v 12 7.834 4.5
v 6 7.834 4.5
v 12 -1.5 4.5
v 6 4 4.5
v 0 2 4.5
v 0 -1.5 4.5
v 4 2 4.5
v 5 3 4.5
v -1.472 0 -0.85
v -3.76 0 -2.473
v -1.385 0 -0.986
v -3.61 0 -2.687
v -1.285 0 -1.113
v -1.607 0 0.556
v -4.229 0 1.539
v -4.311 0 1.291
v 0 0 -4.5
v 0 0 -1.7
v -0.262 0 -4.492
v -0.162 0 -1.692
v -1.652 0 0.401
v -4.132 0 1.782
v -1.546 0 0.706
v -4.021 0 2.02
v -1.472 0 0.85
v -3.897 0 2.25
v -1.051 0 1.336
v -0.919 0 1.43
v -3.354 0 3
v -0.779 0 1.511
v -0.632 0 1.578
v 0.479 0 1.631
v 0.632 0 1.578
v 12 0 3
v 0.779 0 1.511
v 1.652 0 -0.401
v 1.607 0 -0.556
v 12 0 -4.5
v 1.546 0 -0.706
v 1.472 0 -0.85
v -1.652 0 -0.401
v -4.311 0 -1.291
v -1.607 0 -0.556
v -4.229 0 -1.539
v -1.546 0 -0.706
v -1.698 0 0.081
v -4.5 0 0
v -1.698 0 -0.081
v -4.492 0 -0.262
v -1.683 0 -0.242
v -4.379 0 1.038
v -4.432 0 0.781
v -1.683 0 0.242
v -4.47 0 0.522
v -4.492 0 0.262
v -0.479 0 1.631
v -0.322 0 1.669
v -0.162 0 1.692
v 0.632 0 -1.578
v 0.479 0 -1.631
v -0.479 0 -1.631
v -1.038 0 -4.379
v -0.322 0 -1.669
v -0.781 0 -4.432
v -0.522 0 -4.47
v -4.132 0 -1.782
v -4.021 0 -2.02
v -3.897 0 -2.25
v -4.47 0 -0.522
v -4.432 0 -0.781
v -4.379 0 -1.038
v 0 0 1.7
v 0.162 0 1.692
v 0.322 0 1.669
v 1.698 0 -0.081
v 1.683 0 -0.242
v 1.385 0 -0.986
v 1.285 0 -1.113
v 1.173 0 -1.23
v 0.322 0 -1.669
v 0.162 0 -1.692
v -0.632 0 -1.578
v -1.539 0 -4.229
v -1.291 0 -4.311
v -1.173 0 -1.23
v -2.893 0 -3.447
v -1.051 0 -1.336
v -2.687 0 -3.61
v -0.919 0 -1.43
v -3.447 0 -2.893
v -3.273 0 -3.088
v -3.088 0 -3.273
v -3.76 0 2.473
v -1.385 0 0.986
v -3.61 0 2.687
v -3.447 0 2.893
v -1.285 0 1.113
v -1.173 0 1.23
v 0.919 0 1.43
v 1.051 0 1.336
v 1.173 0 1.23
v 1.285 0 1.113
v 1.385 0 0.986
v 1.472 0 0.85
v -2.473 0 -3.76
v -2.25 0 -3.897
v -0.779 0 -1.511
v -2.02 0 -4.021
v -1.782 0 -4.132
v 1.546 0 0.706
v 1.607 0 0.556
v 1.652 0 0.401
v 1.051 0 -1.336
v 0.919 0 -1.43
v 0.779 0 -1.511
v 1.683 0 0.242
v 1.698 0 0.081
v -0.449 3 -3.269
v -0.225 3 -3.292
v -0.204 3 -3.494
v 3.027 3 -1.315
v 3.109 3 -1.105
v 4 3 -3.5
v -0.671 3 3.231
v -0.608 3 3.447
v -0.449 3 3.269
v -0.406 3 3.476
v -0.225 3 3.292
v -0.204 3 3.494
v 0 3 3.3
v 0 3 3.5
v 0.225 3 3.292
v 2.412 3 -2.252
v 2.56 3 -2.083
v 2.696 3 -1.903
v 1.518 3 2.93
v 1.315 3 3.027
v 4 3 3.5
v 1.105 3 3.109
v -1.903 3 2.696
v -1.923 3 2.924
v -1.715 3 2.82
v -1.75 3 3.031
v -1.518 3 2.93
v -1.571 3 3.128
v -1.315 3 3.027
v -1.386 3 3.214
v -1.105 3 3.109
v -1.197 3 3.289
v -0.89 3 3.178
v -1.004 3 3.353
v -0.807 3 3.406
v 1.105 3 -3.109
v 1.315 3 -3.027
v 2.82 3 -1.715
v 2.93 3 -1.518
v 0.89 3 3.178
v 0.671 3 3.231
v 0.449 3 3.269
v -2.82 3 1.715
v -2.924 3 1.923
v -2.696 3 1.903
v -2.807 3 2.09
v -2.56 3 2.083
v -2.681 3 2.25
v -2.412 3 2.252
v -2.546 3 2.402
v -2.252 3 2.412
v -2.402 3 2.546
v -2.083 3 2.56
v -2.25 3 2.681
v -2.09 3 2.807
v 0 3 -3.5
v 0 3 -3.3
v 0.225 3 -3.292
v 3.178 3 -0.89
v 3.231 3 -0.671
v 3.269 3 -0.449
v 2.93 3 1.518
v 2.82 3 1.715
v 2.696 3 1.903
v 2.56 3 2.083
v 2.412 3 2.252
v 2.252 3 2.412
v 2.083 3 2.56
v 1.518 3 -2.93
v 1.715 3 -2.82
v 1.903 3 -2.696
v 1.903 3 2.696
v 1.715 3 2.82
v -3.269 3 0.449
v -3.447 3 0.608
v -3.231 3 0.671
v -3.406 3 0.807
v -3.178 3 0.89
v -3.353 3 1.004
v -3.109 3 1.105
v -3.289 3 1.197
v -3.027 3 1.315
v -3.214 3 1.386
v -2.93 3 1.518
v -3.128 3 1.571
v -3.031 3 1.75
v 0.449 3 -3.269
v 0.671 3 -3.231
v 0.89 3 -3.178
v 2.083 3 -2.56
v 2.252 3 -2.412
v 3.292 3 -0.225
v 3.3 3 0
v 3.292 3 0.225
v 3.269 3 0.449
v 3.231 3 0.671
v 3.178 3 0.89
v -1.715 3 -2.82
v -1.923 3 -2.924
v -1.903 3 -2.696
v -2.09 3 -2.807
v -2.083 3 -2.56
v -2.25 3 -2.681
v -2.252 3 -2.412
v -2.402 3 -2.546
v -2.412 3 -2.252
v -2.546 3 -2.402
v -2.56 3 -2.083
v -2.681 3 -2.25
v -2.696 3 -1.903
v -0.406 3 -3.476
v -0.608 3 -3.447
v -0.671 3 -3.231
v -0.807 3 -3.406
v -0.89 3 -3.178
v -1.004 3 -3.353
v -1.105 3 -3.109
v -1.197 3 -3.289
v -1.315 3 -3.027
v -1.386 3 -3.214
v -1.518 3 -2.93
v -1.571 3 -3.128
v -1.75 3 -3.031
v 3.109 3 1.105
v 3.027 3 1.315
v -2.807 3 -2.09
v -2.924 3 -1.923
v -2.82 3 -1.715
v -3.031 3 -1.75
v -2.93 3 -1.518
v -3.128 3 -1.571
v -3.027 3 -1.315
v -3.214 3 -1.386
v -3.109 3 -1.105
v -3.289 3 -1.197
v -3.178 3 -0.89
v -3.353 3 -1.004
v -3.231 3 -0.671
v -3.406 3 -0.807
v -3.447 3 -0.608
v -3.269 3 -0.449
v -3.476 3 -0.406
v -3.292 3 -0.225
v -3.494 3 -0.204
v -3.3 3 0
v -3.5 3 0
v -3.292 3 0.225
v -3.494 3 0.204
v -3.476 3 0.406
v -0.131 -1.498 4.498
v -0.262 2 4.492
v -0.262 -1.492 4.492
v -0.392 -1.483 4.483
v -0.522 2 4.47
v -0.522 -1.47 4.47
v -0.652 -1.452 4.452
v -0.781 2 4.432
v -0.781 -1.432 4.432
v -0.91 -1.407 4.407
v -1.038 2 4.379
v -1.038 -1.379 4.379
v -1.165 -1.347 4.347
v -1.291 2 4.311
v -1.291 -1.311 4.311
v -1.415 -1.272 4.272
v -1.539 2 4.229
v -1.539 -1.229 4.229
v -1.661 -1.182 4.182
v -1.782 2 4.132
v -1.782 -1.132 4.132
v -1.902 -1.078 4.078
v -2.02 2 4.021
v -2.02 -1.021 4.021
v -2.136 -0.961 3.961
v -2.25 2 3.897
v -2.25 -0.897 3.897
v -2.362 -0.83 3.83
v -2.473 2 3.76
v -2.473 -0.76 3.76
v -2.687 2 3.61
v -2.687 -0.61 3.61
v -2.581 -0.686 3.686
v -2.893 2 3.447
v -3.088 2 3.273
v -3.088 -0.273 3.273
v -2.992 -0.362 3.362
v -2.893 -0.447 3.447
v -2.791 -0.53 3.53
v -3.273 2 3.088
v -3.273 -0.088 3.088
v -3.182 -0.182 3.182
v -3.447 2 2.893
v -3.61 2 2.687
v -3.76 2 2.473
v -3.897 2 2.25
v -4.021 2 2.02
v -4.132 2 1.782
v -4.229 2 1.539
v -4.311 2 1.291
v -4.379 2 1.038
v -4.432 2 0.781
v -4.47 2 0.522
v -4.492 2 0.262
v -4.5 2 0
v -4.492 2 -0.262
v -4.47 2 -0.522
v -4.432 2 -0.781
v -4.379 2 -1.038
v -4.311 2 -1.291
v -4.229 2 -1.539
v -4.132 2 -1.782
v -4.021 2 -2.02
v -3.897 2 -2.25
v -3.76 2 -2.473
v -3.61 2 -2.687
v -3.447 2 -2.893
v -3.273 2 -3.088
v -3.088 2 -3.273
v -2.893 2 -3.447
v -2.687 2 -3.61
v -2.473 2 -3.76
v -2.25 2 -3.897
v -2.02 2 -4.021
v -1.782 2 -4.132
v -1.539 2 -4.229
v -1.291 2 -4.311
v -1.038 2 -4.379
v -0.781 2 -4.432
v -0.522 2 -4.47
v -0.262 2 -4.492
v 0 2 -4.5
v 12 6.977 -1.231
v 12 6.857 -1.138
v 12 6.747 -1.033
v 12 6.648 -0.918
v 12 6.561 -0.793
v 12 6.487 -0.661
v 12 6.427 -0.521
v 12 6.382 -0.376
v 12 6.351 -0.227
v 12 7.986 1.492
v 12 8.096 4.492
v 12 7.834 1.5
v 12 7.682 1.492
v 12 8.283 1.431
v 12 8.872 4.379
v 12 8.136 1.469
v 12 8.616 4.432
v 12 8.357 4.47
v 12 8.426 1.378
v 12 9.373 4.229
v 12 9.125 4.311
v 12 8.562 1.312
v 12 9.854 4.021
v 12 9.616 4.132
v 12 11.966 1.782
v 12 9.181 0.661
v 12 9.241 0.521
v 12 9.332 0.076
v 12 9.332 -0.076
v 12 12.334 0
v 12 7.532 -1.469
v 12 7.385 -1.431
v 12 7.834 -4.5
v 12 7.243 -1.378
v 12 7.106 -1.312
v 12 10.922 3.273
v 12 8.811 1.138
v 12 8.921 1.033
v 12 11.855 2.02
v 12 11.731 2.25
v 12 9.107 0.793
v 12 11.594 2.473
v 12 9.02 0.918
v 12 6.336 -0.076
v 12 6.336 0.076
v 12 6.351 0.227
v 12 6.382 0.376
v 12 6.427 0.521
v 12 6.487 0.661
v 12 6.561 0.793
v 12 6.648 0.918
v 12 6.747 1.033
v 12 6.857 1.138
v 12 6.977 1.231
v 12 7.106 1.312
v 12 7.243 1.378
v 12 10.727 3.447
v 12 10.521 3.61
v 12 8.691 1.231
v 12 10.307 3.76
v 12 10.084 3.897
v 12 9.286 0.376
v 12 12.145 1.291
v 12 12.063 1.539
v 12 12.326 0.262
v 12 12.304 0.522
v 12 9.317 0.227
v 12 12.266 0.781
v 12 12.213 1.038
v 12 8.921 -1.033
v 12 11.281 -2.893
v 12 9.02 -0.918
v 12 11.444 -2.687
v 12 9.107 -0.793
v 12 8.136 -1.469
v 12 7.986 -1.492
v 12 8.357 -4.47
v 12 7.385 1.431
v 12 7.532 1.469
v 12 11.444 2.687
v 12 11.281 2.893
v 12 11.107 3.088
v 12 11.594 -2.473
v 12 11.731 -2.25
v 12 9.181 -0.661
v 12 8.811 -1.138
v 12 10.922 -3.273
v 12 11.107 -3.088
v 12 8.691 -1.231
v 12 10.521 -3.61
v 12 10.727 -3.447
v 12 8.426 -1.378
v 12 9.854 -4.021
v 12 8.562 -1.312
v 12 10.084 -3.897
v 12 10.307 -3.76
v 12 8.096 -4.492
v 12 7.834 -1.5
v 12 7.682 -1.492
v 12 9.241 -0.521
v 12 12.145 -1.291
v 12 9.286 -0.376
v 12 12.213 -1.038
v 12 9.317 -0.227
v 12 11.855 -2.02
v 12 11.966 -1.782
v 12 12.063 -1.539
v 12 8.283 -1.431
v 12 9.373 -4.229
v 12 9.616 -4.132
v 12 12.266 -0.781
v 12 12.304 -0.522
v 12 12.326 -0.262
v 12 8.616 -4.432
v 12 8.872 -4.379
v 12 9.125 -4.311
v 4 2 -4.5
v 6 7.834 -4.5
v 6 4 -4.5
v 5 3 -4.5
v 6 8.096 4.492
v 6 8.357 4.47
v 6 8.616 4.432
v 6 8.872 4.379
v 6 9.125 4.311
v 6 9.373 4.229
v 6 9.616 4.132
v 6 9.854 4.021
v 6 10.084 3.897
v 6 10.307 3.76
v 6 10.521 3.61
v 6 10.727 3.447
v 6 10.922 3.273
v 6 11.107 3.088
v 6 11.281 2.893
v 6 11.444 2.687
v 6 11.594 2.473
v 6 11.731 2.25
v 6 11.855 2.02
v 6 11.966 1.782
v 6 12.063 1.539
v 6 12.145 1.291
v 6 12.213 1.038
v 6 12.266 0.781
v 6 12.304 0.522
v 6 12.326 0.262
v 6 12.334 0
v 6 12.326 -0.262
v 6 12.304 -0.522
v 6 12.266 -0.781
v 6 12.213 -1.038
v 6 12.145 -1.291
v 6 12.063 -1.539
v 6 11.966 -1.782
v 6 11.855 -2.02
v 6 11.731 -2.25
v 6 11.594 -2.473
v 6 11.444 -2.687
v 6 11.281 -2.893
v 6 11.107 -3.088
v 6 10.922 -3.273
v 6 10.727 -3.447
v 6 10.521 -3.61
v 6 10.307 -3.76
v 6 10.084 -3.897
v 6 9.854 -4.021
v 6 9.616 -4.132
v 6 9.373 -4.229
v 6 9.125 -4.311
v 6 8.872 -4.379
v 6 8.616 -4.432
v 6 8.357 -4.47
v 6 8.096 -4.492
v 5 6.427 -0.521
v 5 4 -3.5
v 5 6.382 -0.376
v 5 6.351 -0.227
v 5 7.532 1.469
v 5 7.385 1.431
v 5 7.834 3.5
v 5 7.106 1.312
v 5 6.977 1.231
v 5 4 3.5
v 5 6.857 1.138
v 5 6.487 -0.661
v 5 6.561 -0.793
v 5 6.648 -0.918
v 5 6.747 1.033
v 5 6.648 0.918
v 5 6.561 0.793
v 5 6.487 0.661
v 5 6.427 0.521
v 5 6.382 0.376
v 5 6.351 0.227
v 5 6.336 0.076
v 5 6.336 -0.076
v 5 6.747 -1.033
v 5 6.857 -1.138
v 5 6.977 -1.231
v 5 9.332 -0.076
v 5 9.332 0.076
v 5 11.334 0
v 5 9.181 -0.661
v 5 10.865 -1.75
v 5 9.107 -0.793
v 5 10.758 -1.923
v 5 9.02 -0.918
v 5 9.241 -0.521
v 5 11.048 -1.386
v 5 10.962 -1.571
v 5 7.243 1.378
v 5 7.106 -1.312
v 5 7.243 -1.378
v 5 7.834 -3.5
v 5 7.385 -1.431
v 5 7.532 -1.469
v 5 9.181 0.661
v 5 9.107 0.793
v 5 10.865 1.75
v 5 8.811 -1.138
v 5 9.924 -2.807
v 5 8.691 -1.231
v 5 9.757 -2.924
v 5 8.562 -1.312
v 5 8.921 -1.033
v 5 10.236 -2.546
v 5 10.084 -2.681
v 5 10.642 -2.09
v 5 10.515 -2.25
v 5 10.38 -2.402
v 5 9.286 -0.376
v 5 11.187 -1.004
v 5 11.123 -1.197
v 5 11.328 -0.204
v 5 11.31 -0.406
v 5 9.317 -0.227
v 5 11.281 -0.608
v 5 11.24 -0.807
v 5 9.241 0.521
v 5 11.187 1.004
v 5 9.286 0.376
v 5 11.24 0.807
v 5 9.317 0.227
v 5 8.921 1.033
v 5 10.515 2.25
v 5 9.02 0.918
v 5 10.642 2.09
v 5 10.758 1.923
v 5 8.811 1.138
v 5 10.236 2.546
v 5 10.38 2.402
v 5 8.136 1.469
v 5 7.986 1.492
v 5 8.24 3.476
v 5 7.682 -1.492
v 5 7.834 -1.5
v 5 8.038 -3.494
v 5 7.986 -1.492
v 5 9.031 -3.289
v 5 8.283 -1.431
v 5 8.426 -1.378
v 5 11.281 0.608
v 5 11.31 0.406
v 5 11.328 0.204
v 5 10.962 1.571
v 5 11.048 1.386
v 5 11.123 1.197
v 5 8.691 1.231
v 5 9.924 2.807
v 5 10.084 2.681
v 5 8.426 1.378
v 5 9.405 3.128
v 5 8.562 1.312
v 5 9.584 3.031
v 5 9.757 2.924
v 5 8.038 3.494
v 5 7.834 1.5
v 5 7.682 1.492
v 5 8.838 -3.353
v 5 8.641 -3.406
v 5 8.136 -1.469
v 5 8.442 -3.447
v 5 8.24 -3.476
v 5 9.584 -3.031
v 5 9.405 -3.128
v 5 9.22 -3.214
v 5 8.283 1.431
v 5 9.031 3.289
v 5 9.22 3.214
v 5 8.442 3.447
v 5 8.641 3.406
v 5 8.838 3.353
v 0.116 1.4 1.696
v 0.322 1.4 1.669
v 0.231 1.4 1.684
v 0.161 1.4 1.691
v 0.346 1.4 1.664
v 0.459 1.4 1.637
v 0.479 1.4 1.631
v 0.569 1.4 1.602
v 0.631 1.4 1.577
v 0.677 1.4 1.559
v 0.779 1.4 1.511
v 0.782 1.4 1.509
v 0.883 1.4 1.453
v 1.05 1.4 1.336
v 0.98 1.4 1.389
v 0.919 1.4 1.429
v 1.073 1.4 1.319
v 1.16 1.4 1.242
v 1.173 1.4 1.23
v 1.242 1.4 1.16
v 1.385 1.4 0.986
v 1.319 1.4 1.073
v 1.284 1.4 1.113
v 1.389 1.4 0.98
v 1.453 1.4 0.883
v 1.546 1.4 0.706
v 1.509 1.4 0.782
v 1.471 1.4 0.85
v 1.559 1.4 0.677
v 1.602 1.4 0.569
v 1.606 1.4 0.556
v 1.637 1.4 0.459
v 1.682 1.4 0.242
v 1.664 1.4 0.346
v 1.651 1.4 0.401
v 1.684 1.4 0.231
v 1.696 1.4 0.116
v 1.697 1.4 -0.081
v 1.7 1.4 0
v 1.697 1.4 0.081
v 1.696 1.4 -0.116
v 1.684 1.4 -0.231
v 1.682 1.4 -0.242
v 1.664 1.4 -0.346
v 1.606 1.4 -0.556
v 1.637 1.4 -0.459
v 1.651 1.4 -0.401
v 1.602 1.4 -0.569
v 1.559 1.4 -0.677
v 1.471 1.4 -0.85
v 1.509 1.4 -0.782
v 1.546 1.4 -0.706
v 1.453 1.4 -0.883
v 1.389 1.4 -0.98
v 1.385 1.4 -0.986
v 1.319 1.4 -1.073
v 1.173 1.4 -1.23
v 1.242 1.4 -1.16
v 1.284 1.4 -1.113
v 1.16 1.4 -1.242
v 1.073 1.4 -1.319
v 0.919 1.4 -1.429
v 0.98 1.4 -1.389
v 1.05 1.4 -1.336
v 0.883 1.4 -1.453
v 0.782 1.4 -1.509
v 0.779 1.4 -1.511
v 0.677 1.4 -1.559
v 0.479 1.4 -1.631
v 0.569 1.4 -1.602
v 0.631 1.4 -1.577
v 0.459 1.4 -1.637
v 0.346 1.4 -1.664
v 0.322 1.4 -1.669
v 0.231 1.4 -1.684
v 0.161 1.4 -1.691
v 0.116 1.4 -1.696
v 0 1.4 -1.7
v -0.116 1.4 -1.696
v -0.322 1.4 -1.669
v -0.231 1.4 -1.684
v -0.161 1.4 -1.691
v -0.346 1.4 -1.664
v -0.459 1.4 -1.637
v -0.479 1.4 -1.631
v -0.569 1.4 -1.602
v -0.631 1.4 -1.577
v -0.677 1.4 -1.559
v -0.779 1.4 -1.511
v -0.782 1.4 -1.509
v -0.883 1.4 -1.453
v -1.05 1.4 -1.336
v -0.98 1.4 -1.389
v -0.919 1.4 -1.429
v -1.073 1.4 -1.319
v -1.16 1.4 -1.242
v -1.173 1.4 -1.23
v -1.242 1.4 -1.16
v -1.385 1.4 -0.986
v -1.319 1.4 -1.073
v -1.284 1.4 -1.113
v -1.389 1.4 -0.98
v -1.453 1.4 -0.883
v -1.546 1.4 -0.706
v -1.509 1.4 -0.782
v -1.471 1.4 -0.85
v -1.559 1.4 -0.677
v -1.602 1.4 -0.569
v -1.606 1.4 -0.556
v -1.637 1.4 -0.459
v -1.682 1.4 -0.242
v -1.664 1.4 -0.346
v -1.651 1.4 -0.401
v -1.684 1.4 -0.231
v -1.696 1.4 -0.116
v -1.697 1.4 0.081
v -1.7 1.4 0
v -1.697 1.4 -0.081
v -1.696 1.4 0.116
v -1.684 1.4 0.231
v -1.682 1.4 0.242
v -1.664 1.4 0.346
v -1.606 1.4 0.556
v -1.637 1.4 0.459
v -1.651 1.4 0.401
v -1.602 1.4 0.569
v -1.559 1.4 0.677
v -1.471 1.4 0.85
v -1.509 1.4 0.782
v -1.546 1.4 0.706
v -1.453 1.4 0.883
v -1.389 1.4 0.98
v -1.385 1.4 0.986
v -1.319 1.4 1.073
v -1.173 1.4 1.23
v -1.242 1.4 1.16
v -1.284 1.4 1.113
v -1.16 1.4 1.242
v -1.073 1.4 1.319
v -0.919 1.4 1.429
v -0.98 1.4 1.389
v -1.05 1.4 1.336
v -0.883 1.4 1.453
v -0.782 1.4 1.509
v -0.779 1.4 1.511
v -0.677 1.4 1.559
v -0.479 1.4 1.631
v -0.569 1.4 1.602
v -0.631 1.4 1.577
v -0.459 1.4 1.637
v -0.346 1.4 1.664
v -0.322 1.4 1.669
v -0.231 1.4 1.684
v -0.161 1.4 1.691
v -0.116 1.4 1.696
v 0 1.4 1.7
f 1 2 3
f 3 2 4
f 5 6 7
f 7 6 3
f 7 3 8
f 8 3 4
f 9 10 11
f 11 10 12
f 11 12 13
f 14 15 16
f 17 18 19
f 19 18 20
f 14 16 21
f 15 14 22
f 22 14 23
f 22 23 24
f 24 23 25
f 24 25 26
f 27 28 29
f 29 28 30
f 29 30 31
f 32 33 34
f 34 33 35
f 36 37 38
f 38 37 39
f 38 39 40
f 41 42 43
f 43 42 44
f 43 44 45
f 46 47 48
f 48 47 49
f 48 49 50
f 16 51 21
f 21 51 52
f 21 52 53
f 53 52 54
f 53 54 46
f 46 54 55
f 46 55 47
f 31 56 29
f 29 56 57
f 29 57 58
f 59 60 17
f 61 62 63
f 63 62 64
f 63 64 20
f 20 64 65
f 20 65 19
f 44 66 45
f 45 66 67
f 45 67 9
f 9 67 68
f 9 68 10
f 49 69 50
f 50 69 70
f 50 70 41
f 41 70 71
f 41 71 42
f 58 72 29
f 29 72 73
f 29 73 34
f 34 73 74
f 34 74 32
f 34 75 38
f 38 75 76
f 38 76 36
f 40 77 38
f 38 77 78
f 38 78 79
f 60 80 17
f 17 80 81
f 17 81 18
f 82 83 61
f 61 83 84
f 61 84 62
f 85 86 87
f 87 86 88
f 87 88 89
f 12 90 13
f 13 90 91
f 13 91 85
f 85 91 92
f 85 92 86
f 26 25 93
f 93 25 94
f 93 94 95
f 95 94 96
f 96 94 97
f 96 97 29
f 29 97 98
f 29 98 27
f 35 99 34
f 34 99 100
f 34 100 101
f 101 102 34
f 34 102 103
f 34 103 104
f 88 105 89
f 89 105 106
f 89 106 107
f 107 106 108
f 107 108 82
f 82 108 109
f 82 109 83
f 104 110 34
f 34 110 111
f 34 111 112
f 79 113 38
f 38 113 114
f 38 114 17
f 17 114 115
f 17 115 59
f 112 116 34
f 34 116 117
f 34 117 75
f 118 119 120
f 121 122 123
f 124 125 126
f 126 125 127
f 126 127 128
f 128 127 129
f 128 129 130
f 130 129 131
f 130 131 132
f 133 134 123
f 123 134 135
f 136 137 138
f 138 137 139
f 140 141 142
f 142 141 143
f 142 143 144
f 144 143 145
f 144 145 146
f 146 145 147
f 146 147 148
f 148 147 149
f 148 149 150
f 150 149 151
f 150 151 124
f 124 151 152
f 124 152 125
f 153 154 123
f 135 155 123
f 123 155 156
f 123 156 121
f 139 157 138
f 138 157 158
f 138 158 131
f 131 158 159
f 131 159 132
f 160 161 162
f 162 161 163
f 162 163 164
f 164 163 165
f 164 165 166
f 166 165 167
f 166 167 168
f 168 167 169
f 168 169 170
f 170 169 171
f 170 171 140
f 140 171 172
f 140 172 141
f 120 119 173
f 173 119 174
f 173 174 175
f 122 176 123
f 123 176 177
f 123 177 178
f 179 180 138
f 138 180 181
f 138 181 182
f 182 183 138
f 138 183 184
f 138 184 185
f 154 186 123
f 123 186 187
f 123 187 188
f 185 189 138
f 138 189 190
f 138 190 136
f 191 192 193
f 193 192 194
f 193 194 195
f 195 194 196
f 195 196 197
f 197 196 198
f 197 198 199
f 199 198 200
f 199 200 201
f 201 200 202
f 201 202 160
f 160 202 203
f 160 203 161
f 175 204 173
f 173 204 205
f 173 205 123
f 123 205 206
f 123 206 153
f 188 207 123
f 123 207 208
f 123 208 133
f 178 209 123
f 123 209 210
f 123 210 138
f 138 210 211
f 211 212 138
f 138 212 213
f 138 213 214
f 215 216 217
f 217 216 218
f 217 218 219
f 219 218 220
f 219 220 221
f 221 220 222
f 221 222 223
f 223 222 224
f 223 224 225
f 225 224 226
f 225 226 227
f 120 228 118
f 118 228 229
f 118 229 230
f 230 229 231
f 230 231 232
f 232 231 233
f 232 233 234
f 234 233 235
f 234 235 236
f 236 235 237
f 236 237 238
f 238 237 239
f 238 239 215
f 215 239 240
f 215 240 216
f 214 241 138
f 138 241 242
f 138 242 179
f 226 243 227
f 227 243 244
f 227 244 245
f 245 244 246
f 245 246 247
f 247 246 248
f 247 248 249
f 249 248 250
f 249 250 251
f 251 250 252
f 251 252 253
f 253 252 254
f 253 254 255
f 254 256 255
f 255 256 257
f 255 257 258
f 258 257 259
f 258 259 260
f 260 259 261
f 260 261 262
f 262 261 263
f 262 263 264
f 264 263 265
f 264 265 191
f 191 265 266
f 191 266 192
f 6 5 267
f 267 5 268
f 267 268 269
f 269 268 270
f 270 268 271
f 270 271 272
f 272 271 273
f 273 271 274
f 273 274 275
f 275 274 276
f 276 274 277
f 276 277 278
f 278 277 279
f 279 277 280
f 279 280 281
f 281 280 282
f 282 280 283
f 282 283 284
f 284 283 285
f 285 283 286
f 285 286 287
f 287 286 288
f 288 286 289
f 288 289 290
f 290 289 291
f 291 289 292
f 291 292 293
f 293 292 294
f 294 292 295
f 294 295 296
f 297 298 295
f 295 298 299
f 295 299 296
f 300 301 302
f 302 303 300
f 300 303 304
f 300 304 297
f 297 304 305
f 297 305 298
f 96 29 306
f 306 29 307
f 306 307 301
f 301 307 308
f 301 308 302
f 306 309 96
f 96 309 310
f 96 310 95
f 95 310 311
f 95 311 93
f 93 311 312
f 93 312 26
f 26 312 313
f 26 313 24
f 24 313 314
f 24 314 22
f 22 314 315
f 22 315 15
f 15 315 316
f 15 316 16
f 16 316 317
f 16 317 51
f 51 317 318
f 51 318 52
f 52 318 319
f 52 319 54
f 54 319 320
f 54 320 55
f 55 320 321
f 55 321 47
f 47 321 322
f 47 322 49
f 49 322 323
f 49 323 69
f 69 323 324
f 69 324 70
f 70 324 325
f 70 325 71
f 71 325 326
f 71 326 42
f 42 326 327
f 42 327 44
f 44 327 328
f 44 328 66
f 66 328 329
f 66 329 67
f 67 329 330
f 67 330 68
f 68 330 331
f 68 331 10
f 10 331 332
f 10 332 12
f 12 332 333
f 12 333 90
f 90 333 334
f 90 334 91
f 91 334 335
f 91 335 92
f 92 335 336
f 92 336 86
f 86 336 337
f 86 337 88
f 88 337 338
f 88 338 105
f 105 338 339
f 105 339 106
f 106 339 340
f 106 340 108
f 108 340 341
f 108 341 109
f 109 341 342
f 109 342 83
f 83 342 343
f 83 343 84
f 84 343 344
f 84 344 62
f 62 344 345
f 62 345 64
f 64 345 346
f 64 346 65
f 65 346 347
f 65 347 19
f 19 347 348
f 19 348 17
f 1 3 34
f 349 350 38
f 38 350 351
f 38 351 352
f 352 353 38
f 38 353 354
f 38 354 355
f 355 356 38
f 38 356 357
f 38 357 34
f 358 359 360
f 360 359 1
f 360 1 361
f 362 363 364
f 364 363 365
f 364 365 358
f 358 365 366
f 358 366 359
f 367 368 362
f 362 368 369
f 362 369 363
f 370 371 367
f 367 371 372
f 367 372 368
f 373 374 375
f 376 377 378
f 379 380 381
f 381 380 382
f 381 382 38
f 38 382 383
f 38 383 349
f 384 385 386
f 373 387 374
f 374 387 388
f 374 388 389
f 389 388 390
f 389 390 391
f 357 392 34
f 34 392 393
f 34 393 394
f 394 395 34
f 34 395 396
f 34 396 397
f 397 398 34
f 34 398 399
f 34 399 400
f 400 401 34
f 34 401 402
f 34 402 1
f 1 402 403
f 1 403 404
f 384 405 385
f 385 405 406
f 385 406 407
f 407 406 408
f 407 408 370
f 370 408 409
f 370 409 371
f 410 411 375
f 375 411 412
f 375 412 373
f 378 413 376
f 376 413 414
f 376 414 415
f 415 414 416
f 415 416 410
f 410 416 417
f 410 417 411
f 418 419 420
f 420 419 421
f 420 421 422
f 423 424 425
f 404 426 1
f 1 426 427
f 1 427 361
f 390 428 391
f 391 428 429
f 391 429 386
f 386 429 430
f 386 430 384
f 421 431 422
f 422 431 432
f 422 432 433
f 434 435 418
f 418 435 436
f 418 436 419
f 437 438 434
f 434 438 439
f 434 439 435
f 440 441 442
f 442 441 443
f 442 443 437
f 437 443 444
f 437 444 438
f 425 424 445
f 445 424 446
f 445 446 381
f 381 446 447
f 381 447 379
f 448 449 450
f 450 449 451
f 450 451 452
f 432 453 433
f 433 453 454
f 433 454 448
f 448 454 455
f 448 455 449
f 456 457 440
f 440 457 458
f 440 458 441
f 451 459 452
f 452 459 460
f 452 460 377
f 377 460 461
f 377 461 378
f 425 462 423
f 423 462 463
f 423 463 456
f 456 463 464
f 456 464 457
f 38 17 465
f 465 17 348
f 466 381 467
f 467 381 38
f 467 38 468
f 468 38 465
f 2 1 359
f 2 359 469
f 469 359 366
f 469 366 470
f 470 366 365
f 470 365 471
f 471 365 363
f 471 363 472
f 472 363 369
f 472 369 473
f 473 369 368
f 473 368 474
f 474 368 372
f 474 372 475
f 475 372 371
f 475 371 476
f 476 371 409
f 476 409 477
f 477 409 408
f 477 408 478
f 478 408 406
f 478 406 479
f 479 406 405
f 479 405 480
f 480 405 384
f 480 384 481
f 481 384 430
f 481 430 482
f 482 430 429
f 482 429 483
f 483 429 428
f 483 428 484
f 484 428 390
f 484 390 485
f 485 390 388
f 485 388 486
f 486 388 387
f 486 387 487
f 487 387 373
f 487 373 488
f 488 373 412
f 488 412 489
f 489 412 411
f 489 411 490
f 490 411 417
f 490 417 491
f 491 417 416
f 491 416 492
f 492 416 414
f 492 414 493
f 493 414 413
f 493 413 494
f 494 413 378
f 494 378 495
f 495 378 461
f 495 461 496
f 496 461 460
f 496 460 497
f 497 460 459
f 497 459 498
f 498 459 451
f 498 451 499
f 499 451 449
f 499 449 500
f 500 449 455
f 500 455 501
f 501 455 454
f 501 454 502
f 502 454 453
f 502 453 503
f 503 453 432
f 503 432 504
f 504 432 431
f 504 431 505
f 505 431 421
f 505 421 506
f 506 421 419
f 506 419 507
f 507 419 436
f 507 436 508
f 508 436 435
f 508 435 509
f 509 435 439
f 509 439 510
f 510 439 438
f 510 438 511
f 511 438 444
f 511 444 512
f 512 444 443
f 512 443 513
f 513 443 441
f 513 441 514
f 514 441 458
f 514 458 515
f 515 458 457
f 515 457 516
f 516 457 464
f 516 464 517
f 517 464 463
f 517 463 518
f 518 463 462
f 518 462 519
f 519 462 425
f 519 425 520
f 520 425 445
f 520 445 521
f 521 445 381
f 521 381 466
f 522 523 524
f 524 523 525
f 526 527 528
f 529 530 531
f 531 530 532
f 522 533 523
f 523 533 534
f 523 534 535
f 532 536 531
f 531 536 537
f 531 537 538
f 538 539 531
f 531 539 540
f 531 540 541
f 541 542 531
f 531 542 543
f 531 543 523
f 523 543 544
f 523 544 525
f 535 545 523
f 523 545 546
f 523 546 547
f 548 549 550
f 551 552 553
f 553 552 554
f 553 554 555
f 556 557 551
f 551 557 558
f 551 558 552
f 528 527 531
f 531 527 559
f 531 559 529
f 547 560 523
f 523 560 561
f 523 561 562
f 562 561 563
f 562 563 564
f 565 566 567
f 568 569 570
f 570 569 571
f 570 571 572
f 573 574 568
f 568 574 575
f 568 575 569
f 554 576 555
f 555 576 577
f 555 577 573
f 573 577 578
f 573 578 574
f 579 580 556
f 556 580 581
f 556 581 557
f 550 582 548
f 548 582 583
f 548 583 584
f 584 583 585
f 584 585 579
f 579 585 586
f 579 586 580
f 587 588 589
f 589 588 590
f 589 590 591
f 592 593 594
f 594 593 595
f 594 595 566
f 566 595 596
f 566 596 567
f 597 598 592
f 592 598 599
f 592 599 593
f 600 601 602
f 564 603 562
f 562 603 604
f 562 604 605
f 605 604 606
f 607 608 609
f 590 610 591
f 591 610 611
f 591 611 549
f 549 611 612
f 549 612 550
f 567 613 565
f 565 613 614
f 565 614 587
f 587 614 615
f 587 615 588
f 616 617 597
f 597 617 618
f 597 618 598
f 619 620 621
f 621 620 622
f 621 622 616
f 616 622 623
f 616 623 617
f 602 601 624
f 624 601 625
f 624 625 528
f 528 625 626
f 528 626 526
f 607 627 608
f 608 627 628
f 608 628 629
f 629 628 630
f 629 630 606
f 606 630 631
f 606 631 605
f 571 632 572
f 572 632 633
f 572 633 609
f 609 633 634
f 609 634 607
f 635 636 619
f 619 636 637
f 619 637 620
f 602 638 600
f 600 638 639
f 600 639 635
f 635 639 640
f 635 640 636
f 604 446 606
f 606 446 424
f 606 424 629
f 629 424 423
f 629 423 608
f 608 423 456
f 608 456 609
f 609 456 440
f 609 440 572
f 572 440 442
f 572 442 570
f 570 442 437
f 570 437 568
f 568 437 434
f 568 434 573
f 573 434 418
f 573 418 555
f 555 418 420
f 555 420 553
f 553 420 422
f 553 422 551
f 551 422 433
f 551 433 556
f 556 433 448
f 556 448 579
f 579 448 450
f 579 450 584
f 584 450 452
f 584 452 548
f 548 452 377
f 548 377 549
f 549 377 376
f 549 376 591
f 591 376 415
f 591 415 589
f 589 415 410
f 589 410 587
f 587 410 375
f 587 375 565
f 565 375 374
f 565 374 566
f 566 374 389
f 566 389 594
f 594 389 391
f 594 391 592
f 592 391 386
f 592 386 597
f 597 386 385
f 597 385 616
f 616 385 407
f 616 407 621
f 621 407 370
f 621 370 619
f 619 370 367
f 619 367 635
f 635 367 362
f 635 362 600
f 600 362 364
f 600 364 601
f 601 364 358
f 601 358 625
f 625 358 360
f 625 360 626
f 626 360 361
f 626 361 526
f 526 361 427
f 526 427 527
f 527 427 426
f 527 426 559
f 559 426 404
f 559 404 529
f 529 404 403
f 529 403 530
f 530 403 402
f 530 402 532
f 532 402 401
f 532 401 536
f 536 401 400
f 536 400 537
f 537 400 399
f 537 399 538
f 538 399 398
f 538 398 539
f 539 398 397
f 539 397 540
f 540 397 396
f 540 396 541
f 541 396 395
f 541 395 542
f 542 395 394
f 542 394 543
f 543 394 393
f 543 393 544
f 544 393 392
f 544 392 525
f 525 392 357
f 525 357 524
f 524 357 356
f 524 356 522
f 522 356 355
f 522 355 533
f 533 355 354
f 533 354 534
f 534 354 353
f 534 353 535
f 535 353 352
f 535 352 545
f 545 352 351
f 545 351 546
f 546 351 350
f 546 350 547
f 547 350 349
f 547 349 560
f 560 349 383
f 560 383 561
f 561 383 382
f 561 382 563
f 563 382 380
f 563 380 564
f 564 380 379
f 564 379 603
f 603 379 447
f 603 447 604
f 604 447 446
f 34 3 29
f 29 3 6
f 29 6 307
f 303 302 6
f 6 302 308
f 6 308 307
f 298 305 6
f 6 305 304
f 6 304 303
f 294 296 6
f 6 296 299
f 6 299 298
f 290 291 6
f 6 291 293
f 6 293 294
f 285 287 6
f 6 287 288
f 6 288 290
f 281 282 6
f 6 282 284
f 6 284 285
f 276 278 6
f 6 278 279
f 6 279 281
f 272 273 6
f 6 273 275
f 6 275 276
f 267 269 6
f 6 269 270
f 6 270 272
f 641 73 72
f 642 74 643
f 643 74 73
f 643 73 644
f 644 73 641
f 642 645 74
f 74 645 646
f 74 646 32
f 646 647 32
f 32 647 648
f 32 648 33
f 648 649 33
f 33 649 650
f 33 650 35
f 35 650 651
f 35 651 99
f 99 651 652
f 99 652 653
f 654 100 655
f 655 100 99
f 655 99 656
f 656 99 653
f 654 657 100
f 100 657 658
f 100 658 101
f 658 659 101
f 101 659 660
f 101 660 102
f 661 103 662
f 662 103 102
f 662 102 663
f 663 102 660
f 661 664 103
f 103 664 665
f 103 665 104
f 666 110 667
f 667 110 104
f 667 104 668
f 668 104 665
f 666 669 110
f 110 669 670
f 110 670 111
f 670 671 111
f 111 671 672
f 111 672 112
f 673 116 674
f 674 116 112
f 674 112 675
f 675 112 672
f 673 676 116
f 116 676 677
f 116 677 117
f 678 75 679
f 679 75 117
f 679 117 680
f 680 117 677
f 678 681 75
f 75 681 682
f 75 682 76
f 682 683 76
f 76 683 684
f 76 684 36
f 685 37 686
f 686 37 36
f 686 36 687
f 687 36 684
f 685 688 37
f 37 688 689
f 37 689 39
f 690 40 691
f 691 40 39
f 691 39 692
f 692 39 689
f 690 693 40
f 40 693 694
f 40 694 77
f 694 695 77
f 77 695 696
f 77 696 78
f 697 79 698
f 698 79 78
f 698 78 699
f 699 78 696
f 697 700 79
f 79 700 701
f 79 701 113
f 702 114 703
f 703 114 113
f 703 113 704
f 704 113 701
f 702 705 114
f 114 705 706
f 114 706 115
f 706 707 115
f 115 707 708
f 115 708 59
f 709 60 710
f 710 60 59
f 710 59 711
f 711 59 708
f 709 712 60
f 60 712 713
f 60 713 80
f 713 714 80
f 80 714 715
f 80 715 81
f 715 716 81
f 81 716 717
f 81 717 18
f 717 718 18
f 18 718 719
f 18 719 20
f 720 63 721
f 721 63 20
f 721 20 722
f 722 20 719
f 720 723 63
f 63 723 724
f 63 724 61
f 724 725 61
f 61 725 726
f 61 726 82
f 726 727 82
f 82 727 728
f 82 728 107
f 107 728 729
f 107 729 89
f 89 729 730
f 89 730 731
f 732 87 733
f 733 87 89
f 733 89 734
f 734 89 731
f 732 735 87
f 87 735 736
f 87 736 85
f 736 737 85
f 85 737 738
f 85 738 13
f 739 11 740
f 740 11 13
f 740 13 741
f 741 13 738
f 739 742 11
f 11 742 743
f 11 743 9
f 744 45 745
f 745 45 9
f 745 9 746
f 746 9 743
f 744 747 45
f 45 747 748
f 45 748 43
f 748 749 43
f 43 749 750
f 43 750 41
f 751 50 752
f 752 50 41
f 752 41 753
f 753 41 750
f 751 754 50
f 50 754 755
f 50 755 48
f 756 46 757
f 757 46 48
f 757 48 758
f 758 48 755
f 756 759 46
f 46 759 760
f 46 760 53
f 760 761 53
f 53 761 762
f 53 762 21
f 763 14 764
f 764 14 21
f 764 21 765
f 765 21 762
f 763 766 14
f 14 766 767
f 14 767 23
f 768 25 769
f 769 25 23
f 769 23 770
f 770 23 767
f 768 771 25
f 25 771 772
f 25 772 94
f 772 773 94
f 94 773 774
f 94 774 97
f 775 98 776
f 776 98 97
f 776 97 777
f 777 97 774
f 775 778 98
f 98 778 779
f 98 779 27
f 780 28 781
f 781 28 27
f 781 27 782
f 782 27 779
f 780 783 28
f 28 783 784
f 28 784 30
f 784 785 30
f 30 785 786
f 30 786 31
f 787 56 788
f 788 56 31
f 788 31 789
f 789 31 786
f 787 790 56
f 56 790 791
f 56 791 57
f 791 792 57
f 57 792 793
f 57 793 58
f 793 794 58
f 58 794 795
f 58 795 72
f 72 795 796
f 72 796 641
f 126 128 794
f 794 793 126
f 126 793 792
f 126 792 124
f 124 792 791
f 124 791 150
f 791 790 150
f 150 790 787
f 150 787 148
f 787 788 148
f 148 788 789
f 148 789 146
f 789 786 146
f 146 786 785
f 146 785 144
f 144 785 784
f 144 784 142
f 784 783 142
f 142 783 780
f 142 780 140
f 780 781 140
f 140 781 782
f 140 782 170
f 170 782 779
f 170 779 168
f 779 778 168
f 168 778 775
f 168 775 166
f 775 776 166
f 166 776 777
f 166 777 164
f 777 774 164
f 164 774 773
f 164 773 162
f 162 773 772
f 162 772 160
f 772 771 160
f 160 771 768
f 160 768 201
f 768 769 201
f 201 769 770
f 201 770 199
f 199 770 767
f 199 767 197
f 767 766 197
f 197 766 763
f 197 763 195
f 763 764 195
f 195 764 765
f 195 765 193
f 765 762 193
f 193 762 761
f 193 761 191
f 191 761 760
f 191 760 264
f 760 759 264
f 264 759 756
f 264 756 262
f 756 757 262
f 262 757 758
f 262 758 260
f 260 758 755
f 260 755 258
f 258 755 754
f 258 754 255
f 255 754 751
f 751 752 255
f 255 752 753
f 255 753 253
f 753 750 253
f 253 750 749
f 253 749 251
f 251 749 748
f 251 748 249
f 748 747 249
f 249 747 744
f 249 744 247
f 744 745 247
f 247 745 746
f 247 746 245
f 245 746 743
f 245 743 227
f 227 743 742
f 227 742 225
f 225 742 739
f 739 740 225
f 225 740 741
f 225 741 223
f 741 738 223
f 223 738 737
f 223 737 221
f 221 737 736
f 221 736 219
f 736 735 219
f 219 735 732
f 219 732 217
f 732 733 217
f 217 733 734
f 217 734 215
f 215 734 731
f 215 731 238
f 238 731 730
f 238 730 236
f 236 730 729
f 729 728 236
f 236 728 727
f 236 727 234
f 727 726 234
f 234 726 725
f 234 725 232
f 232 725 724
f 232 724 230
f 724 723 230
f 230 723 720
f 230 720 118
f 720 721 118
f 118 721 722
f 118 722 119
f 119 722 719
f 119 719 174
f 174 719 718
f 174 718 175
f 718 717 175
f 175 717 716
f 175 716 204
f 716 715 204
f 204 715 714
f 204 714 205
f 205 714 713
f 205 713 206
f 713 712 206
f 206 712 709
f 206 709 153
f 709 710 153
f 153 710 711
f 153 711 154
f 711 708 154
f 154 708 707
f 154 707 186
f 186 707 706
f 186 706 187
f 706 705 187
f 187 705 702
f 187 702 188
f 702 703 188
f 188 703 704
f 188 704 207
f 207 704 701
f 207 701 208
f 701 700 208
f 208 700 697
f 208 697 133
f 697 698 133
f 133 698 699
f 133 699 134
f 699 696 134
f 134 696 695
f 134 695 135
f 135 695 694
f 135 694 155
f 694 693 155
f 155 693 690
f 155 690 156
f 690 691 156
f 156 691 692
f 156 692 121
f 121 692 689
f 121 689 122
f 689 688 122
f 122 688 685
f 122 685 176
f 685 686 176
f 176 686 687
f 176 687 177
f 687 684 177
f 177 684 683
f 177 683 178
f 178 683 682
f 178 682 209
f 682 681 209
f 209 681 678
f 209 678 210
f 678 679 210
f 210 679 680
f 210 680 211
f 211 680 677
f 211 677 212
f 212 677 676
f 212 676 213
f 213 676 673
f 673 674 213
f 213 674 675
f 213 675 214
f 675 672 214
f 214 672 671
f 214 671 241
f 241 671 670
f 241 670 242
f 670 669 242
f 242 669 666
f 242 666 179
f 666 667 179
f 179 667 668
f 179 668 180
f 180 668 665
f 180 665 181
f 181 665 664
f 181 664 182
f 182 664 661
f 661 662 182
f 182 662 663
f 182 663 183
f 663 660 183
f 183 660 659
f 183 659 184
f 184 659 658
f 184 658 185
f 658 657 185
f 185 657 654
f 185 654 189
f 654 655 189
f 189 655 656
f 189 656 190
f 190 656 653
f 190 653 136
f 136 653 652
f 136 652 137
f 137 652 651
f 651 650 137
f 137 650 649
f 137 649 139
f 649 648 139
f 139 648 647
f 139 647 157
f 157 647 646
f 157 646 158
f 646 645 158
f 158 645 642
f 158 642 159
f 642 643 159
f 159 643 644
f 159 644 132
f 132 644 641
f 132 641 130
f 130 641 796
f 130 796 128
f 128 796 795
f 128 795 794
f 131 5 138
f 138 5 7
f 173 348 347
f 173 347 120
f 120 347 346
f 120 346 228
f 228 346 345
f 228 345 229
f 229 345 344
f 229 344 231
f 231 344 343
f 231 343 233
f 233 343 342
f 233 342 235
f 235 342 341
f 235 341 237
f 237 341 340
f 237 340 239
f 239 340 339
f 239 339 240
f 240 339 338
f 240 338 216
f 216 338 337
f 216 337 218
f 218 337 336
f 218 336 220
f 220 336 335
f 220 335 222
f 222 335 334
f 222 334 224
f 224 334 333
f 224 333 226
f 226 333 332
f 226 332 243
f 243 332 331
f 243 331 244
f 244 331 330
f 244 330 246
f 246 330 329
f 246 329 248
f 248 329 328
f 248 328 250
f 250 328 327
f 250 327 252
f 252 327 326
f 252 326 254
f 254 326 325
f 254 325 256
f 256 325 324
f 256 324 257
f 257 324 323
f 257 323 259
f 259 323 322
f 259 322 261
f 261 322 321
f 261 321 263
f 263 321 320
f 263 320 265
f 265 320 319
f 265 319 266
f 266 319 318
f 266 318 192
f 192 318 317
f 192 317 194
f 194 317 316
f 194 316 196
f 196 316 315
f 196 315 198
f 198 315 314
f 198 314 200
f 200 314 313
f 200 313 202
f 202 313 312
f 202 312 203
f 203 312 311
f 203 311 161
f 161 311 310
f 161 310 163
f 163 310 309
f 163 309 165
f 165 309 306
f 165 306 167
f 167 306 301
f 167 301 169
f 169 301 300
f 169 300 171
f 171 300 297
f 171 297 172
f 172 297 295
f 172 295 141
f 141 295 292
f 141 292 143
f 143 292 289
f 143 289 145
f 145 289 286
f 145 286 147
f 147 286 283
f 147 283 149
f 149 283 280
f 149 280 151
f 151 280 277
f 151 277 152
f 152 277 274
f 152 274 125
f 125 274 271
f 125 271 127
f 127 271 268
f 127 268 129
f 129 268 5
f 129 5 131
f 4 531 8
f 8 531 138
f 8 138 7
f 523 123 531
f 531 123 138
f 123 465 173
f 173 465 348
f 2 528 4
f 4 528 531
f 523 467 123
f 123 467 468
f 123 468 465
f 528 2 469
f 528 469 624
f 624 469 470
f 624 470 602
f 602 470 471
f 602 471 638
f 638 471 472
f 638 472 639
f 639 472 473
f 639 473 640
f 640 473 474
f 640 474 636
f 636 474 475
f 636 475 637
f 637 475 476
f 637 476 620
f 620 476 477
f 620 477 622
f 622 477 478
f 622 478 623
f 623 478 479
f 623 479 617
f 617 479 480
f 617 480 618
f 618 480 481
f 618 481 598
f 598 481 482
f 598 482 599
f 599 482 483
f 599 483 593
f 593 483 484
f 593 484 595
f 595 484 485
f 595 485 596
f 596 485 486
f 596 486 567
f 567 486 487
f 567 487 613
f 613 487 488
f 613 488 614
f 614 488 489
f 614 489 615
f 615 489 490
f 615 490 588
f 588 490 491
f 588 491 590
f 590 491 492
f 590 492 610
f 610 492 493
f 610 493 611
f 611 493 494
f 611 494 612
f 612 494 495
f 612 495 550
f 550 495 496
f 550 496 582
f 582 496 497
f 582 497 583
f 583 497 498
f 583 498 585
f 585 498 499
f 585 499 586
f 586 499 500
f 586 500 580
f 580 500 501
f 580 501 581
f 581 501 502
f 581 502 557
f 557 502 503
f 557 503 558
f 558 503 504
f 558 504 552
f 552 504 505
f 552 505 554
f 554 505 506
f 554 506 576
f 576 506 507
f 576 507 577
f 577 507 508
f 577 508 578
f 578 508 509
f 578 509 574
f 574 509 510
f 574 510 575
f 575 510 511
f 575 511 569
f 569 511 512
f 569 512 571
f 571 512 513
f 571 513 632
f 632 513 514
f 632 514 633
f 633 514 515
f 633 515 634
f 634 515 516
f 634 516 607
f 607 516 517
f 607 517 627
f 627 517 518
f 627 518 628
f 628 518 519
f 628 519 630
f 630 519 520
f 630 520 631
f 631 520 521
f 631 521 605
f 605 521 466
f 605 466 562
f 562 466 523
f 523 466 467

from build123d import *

# Parameters (mm, degrees)
SKETCH_1_R                = 1.5
EXTRUDE_1_DEPTH           = 3
SKETCH_3_R                = 1.5
EXTRUDE_2_DEPTH           = 7
EXTRUDE_START             = -15.354101966
EXTRUDE_3_DEPTH           = 15.354101966
EXTRUDE_START_2           = -2
EXTRUDE_3_2_DEPTH         = 2
HOLE_WIZARD_1_D           = 3.4
HOLE_WIZARD_1_CSINK_D     = 6.6
HOLE_WIZARD_1_CSINK_ANGLE = 90
CHAMFER_1_SIZE            = 1


with BuildPart() as part:
    # 草图1 → 凸台-拉伸1 (new body)
    with BuildSketch(Plane(origin=(0, 0, 0), x_dir=(1, 0, 0), z_dir=(0, 1, 0))):
        with BuildLine():
            Line((0, 4.5), (12, 4.5))
            Line((12, 4.5), (12, -4.5))
            Line((12, -4.5), (0, -4.5))
            ThreePointArc((0, -4.5), (-4.5, 0), (0, 4.5))
        make_face()
        with Locations(Location((0, 0, 0), (0, 0, 270))):
            Circle(SKETCH_1_R, mode=Mode.SUBTRACT)
    extrude(amount=EXTRUDE_1_DEPTH)

    # 草图3 → 凸台-拉伸2 (add)
    with BuildSketch(Plane(origin=(12, 0, 0), x_dir=(0, 0, -1), z_dir=(1, 0, 0))):
        with BuildLine():
            Line((-4.5, 7.834100358), (-4.5, 0))
            Line((-4.5, 0), (4.5, 0))
            Line((4.5, 0), (4.5, 7.834100358))
            ThreePointArc((4.5, 7.834100358), (0, 12.334100358), (-4.5, 7.834100358))
        make_face()
        with Locations((0, 7.834100358)):
            Circle(SKETCH_3_R, mode=Mode.SUBTRACT)
    extrude(amount=-EXTRUDE_2_DEPTH)

    # 凸台-拉伸3: read off the stored shape, not the designer's step
    # 凸台-拉伸3 outline → 凸台-拉伸3 (add)
    with BuildSketch(Plane(origin=(12, 0, 0), x_dir=(0, 0, -1), z_dir=(1, 0, 0)).offset(EXTRUDE_START)):
        Polygon((-4.5, 0), (-4.5, -1.5), (-3, 0), align=None)
    extrude(amount=EXTRUDE_3_DEPTH)

    # Extrude 3 2 outline → Extrude 3 2 (cut)
    with BuildSketch(Plane(origin=(0, 0, 0), x_dir=(1, 0, 0), z_dir=(0, 1, 0)).offset(EXTRUDE_START_2)):
        with BuildLine():
            Line((-3.354101966, -4.5), (0, -4.5))
            ThreePointArc((0, -4.5), (-1.837117307, -4.107919181), (-3.354101966, -3))
            Line((-3.354101966, -3), (-3.354101966, -4.5))
        make_face()
    extrude(amount=EXTRUDE_3_2_DEPTH, mode=Mode.SUBTRACT)

    # 打孔尺寸(%根据十字)槽半沉头木螺钉的类型1 (through all)
    with Locations(Plane(origin=(0, 3, 0), x_dir=(1, 0, 0), z_dir=(0, 1, 0))):
        with Locations((0, 0)):
            CounterSinkHole(HOLE_WIZARD_1_D / 2, HOLE_WIZARD_1_CSINK_D / 2, counter_sink_angle=HOLE_WIZARD_1_CSINK_ANGLE)

    # 倒角1
    chamfer_1_edges = [part.edges().sort_by_distance(p)[0] for p in [
        (2.5, 3, -4.5),
        (5, 3, 0),
        (5, 12.334100358, 0),
        (5, 5.417050179, -4.5),
        (5, 5.417050179, 4.5),
        (-4.5, 3, 0),
        (2.5, 3, 4.5),
    ]]
    chamfer(chamfer_1_edges, length=CHAMFER_1_SIZE)


solid = part.part
